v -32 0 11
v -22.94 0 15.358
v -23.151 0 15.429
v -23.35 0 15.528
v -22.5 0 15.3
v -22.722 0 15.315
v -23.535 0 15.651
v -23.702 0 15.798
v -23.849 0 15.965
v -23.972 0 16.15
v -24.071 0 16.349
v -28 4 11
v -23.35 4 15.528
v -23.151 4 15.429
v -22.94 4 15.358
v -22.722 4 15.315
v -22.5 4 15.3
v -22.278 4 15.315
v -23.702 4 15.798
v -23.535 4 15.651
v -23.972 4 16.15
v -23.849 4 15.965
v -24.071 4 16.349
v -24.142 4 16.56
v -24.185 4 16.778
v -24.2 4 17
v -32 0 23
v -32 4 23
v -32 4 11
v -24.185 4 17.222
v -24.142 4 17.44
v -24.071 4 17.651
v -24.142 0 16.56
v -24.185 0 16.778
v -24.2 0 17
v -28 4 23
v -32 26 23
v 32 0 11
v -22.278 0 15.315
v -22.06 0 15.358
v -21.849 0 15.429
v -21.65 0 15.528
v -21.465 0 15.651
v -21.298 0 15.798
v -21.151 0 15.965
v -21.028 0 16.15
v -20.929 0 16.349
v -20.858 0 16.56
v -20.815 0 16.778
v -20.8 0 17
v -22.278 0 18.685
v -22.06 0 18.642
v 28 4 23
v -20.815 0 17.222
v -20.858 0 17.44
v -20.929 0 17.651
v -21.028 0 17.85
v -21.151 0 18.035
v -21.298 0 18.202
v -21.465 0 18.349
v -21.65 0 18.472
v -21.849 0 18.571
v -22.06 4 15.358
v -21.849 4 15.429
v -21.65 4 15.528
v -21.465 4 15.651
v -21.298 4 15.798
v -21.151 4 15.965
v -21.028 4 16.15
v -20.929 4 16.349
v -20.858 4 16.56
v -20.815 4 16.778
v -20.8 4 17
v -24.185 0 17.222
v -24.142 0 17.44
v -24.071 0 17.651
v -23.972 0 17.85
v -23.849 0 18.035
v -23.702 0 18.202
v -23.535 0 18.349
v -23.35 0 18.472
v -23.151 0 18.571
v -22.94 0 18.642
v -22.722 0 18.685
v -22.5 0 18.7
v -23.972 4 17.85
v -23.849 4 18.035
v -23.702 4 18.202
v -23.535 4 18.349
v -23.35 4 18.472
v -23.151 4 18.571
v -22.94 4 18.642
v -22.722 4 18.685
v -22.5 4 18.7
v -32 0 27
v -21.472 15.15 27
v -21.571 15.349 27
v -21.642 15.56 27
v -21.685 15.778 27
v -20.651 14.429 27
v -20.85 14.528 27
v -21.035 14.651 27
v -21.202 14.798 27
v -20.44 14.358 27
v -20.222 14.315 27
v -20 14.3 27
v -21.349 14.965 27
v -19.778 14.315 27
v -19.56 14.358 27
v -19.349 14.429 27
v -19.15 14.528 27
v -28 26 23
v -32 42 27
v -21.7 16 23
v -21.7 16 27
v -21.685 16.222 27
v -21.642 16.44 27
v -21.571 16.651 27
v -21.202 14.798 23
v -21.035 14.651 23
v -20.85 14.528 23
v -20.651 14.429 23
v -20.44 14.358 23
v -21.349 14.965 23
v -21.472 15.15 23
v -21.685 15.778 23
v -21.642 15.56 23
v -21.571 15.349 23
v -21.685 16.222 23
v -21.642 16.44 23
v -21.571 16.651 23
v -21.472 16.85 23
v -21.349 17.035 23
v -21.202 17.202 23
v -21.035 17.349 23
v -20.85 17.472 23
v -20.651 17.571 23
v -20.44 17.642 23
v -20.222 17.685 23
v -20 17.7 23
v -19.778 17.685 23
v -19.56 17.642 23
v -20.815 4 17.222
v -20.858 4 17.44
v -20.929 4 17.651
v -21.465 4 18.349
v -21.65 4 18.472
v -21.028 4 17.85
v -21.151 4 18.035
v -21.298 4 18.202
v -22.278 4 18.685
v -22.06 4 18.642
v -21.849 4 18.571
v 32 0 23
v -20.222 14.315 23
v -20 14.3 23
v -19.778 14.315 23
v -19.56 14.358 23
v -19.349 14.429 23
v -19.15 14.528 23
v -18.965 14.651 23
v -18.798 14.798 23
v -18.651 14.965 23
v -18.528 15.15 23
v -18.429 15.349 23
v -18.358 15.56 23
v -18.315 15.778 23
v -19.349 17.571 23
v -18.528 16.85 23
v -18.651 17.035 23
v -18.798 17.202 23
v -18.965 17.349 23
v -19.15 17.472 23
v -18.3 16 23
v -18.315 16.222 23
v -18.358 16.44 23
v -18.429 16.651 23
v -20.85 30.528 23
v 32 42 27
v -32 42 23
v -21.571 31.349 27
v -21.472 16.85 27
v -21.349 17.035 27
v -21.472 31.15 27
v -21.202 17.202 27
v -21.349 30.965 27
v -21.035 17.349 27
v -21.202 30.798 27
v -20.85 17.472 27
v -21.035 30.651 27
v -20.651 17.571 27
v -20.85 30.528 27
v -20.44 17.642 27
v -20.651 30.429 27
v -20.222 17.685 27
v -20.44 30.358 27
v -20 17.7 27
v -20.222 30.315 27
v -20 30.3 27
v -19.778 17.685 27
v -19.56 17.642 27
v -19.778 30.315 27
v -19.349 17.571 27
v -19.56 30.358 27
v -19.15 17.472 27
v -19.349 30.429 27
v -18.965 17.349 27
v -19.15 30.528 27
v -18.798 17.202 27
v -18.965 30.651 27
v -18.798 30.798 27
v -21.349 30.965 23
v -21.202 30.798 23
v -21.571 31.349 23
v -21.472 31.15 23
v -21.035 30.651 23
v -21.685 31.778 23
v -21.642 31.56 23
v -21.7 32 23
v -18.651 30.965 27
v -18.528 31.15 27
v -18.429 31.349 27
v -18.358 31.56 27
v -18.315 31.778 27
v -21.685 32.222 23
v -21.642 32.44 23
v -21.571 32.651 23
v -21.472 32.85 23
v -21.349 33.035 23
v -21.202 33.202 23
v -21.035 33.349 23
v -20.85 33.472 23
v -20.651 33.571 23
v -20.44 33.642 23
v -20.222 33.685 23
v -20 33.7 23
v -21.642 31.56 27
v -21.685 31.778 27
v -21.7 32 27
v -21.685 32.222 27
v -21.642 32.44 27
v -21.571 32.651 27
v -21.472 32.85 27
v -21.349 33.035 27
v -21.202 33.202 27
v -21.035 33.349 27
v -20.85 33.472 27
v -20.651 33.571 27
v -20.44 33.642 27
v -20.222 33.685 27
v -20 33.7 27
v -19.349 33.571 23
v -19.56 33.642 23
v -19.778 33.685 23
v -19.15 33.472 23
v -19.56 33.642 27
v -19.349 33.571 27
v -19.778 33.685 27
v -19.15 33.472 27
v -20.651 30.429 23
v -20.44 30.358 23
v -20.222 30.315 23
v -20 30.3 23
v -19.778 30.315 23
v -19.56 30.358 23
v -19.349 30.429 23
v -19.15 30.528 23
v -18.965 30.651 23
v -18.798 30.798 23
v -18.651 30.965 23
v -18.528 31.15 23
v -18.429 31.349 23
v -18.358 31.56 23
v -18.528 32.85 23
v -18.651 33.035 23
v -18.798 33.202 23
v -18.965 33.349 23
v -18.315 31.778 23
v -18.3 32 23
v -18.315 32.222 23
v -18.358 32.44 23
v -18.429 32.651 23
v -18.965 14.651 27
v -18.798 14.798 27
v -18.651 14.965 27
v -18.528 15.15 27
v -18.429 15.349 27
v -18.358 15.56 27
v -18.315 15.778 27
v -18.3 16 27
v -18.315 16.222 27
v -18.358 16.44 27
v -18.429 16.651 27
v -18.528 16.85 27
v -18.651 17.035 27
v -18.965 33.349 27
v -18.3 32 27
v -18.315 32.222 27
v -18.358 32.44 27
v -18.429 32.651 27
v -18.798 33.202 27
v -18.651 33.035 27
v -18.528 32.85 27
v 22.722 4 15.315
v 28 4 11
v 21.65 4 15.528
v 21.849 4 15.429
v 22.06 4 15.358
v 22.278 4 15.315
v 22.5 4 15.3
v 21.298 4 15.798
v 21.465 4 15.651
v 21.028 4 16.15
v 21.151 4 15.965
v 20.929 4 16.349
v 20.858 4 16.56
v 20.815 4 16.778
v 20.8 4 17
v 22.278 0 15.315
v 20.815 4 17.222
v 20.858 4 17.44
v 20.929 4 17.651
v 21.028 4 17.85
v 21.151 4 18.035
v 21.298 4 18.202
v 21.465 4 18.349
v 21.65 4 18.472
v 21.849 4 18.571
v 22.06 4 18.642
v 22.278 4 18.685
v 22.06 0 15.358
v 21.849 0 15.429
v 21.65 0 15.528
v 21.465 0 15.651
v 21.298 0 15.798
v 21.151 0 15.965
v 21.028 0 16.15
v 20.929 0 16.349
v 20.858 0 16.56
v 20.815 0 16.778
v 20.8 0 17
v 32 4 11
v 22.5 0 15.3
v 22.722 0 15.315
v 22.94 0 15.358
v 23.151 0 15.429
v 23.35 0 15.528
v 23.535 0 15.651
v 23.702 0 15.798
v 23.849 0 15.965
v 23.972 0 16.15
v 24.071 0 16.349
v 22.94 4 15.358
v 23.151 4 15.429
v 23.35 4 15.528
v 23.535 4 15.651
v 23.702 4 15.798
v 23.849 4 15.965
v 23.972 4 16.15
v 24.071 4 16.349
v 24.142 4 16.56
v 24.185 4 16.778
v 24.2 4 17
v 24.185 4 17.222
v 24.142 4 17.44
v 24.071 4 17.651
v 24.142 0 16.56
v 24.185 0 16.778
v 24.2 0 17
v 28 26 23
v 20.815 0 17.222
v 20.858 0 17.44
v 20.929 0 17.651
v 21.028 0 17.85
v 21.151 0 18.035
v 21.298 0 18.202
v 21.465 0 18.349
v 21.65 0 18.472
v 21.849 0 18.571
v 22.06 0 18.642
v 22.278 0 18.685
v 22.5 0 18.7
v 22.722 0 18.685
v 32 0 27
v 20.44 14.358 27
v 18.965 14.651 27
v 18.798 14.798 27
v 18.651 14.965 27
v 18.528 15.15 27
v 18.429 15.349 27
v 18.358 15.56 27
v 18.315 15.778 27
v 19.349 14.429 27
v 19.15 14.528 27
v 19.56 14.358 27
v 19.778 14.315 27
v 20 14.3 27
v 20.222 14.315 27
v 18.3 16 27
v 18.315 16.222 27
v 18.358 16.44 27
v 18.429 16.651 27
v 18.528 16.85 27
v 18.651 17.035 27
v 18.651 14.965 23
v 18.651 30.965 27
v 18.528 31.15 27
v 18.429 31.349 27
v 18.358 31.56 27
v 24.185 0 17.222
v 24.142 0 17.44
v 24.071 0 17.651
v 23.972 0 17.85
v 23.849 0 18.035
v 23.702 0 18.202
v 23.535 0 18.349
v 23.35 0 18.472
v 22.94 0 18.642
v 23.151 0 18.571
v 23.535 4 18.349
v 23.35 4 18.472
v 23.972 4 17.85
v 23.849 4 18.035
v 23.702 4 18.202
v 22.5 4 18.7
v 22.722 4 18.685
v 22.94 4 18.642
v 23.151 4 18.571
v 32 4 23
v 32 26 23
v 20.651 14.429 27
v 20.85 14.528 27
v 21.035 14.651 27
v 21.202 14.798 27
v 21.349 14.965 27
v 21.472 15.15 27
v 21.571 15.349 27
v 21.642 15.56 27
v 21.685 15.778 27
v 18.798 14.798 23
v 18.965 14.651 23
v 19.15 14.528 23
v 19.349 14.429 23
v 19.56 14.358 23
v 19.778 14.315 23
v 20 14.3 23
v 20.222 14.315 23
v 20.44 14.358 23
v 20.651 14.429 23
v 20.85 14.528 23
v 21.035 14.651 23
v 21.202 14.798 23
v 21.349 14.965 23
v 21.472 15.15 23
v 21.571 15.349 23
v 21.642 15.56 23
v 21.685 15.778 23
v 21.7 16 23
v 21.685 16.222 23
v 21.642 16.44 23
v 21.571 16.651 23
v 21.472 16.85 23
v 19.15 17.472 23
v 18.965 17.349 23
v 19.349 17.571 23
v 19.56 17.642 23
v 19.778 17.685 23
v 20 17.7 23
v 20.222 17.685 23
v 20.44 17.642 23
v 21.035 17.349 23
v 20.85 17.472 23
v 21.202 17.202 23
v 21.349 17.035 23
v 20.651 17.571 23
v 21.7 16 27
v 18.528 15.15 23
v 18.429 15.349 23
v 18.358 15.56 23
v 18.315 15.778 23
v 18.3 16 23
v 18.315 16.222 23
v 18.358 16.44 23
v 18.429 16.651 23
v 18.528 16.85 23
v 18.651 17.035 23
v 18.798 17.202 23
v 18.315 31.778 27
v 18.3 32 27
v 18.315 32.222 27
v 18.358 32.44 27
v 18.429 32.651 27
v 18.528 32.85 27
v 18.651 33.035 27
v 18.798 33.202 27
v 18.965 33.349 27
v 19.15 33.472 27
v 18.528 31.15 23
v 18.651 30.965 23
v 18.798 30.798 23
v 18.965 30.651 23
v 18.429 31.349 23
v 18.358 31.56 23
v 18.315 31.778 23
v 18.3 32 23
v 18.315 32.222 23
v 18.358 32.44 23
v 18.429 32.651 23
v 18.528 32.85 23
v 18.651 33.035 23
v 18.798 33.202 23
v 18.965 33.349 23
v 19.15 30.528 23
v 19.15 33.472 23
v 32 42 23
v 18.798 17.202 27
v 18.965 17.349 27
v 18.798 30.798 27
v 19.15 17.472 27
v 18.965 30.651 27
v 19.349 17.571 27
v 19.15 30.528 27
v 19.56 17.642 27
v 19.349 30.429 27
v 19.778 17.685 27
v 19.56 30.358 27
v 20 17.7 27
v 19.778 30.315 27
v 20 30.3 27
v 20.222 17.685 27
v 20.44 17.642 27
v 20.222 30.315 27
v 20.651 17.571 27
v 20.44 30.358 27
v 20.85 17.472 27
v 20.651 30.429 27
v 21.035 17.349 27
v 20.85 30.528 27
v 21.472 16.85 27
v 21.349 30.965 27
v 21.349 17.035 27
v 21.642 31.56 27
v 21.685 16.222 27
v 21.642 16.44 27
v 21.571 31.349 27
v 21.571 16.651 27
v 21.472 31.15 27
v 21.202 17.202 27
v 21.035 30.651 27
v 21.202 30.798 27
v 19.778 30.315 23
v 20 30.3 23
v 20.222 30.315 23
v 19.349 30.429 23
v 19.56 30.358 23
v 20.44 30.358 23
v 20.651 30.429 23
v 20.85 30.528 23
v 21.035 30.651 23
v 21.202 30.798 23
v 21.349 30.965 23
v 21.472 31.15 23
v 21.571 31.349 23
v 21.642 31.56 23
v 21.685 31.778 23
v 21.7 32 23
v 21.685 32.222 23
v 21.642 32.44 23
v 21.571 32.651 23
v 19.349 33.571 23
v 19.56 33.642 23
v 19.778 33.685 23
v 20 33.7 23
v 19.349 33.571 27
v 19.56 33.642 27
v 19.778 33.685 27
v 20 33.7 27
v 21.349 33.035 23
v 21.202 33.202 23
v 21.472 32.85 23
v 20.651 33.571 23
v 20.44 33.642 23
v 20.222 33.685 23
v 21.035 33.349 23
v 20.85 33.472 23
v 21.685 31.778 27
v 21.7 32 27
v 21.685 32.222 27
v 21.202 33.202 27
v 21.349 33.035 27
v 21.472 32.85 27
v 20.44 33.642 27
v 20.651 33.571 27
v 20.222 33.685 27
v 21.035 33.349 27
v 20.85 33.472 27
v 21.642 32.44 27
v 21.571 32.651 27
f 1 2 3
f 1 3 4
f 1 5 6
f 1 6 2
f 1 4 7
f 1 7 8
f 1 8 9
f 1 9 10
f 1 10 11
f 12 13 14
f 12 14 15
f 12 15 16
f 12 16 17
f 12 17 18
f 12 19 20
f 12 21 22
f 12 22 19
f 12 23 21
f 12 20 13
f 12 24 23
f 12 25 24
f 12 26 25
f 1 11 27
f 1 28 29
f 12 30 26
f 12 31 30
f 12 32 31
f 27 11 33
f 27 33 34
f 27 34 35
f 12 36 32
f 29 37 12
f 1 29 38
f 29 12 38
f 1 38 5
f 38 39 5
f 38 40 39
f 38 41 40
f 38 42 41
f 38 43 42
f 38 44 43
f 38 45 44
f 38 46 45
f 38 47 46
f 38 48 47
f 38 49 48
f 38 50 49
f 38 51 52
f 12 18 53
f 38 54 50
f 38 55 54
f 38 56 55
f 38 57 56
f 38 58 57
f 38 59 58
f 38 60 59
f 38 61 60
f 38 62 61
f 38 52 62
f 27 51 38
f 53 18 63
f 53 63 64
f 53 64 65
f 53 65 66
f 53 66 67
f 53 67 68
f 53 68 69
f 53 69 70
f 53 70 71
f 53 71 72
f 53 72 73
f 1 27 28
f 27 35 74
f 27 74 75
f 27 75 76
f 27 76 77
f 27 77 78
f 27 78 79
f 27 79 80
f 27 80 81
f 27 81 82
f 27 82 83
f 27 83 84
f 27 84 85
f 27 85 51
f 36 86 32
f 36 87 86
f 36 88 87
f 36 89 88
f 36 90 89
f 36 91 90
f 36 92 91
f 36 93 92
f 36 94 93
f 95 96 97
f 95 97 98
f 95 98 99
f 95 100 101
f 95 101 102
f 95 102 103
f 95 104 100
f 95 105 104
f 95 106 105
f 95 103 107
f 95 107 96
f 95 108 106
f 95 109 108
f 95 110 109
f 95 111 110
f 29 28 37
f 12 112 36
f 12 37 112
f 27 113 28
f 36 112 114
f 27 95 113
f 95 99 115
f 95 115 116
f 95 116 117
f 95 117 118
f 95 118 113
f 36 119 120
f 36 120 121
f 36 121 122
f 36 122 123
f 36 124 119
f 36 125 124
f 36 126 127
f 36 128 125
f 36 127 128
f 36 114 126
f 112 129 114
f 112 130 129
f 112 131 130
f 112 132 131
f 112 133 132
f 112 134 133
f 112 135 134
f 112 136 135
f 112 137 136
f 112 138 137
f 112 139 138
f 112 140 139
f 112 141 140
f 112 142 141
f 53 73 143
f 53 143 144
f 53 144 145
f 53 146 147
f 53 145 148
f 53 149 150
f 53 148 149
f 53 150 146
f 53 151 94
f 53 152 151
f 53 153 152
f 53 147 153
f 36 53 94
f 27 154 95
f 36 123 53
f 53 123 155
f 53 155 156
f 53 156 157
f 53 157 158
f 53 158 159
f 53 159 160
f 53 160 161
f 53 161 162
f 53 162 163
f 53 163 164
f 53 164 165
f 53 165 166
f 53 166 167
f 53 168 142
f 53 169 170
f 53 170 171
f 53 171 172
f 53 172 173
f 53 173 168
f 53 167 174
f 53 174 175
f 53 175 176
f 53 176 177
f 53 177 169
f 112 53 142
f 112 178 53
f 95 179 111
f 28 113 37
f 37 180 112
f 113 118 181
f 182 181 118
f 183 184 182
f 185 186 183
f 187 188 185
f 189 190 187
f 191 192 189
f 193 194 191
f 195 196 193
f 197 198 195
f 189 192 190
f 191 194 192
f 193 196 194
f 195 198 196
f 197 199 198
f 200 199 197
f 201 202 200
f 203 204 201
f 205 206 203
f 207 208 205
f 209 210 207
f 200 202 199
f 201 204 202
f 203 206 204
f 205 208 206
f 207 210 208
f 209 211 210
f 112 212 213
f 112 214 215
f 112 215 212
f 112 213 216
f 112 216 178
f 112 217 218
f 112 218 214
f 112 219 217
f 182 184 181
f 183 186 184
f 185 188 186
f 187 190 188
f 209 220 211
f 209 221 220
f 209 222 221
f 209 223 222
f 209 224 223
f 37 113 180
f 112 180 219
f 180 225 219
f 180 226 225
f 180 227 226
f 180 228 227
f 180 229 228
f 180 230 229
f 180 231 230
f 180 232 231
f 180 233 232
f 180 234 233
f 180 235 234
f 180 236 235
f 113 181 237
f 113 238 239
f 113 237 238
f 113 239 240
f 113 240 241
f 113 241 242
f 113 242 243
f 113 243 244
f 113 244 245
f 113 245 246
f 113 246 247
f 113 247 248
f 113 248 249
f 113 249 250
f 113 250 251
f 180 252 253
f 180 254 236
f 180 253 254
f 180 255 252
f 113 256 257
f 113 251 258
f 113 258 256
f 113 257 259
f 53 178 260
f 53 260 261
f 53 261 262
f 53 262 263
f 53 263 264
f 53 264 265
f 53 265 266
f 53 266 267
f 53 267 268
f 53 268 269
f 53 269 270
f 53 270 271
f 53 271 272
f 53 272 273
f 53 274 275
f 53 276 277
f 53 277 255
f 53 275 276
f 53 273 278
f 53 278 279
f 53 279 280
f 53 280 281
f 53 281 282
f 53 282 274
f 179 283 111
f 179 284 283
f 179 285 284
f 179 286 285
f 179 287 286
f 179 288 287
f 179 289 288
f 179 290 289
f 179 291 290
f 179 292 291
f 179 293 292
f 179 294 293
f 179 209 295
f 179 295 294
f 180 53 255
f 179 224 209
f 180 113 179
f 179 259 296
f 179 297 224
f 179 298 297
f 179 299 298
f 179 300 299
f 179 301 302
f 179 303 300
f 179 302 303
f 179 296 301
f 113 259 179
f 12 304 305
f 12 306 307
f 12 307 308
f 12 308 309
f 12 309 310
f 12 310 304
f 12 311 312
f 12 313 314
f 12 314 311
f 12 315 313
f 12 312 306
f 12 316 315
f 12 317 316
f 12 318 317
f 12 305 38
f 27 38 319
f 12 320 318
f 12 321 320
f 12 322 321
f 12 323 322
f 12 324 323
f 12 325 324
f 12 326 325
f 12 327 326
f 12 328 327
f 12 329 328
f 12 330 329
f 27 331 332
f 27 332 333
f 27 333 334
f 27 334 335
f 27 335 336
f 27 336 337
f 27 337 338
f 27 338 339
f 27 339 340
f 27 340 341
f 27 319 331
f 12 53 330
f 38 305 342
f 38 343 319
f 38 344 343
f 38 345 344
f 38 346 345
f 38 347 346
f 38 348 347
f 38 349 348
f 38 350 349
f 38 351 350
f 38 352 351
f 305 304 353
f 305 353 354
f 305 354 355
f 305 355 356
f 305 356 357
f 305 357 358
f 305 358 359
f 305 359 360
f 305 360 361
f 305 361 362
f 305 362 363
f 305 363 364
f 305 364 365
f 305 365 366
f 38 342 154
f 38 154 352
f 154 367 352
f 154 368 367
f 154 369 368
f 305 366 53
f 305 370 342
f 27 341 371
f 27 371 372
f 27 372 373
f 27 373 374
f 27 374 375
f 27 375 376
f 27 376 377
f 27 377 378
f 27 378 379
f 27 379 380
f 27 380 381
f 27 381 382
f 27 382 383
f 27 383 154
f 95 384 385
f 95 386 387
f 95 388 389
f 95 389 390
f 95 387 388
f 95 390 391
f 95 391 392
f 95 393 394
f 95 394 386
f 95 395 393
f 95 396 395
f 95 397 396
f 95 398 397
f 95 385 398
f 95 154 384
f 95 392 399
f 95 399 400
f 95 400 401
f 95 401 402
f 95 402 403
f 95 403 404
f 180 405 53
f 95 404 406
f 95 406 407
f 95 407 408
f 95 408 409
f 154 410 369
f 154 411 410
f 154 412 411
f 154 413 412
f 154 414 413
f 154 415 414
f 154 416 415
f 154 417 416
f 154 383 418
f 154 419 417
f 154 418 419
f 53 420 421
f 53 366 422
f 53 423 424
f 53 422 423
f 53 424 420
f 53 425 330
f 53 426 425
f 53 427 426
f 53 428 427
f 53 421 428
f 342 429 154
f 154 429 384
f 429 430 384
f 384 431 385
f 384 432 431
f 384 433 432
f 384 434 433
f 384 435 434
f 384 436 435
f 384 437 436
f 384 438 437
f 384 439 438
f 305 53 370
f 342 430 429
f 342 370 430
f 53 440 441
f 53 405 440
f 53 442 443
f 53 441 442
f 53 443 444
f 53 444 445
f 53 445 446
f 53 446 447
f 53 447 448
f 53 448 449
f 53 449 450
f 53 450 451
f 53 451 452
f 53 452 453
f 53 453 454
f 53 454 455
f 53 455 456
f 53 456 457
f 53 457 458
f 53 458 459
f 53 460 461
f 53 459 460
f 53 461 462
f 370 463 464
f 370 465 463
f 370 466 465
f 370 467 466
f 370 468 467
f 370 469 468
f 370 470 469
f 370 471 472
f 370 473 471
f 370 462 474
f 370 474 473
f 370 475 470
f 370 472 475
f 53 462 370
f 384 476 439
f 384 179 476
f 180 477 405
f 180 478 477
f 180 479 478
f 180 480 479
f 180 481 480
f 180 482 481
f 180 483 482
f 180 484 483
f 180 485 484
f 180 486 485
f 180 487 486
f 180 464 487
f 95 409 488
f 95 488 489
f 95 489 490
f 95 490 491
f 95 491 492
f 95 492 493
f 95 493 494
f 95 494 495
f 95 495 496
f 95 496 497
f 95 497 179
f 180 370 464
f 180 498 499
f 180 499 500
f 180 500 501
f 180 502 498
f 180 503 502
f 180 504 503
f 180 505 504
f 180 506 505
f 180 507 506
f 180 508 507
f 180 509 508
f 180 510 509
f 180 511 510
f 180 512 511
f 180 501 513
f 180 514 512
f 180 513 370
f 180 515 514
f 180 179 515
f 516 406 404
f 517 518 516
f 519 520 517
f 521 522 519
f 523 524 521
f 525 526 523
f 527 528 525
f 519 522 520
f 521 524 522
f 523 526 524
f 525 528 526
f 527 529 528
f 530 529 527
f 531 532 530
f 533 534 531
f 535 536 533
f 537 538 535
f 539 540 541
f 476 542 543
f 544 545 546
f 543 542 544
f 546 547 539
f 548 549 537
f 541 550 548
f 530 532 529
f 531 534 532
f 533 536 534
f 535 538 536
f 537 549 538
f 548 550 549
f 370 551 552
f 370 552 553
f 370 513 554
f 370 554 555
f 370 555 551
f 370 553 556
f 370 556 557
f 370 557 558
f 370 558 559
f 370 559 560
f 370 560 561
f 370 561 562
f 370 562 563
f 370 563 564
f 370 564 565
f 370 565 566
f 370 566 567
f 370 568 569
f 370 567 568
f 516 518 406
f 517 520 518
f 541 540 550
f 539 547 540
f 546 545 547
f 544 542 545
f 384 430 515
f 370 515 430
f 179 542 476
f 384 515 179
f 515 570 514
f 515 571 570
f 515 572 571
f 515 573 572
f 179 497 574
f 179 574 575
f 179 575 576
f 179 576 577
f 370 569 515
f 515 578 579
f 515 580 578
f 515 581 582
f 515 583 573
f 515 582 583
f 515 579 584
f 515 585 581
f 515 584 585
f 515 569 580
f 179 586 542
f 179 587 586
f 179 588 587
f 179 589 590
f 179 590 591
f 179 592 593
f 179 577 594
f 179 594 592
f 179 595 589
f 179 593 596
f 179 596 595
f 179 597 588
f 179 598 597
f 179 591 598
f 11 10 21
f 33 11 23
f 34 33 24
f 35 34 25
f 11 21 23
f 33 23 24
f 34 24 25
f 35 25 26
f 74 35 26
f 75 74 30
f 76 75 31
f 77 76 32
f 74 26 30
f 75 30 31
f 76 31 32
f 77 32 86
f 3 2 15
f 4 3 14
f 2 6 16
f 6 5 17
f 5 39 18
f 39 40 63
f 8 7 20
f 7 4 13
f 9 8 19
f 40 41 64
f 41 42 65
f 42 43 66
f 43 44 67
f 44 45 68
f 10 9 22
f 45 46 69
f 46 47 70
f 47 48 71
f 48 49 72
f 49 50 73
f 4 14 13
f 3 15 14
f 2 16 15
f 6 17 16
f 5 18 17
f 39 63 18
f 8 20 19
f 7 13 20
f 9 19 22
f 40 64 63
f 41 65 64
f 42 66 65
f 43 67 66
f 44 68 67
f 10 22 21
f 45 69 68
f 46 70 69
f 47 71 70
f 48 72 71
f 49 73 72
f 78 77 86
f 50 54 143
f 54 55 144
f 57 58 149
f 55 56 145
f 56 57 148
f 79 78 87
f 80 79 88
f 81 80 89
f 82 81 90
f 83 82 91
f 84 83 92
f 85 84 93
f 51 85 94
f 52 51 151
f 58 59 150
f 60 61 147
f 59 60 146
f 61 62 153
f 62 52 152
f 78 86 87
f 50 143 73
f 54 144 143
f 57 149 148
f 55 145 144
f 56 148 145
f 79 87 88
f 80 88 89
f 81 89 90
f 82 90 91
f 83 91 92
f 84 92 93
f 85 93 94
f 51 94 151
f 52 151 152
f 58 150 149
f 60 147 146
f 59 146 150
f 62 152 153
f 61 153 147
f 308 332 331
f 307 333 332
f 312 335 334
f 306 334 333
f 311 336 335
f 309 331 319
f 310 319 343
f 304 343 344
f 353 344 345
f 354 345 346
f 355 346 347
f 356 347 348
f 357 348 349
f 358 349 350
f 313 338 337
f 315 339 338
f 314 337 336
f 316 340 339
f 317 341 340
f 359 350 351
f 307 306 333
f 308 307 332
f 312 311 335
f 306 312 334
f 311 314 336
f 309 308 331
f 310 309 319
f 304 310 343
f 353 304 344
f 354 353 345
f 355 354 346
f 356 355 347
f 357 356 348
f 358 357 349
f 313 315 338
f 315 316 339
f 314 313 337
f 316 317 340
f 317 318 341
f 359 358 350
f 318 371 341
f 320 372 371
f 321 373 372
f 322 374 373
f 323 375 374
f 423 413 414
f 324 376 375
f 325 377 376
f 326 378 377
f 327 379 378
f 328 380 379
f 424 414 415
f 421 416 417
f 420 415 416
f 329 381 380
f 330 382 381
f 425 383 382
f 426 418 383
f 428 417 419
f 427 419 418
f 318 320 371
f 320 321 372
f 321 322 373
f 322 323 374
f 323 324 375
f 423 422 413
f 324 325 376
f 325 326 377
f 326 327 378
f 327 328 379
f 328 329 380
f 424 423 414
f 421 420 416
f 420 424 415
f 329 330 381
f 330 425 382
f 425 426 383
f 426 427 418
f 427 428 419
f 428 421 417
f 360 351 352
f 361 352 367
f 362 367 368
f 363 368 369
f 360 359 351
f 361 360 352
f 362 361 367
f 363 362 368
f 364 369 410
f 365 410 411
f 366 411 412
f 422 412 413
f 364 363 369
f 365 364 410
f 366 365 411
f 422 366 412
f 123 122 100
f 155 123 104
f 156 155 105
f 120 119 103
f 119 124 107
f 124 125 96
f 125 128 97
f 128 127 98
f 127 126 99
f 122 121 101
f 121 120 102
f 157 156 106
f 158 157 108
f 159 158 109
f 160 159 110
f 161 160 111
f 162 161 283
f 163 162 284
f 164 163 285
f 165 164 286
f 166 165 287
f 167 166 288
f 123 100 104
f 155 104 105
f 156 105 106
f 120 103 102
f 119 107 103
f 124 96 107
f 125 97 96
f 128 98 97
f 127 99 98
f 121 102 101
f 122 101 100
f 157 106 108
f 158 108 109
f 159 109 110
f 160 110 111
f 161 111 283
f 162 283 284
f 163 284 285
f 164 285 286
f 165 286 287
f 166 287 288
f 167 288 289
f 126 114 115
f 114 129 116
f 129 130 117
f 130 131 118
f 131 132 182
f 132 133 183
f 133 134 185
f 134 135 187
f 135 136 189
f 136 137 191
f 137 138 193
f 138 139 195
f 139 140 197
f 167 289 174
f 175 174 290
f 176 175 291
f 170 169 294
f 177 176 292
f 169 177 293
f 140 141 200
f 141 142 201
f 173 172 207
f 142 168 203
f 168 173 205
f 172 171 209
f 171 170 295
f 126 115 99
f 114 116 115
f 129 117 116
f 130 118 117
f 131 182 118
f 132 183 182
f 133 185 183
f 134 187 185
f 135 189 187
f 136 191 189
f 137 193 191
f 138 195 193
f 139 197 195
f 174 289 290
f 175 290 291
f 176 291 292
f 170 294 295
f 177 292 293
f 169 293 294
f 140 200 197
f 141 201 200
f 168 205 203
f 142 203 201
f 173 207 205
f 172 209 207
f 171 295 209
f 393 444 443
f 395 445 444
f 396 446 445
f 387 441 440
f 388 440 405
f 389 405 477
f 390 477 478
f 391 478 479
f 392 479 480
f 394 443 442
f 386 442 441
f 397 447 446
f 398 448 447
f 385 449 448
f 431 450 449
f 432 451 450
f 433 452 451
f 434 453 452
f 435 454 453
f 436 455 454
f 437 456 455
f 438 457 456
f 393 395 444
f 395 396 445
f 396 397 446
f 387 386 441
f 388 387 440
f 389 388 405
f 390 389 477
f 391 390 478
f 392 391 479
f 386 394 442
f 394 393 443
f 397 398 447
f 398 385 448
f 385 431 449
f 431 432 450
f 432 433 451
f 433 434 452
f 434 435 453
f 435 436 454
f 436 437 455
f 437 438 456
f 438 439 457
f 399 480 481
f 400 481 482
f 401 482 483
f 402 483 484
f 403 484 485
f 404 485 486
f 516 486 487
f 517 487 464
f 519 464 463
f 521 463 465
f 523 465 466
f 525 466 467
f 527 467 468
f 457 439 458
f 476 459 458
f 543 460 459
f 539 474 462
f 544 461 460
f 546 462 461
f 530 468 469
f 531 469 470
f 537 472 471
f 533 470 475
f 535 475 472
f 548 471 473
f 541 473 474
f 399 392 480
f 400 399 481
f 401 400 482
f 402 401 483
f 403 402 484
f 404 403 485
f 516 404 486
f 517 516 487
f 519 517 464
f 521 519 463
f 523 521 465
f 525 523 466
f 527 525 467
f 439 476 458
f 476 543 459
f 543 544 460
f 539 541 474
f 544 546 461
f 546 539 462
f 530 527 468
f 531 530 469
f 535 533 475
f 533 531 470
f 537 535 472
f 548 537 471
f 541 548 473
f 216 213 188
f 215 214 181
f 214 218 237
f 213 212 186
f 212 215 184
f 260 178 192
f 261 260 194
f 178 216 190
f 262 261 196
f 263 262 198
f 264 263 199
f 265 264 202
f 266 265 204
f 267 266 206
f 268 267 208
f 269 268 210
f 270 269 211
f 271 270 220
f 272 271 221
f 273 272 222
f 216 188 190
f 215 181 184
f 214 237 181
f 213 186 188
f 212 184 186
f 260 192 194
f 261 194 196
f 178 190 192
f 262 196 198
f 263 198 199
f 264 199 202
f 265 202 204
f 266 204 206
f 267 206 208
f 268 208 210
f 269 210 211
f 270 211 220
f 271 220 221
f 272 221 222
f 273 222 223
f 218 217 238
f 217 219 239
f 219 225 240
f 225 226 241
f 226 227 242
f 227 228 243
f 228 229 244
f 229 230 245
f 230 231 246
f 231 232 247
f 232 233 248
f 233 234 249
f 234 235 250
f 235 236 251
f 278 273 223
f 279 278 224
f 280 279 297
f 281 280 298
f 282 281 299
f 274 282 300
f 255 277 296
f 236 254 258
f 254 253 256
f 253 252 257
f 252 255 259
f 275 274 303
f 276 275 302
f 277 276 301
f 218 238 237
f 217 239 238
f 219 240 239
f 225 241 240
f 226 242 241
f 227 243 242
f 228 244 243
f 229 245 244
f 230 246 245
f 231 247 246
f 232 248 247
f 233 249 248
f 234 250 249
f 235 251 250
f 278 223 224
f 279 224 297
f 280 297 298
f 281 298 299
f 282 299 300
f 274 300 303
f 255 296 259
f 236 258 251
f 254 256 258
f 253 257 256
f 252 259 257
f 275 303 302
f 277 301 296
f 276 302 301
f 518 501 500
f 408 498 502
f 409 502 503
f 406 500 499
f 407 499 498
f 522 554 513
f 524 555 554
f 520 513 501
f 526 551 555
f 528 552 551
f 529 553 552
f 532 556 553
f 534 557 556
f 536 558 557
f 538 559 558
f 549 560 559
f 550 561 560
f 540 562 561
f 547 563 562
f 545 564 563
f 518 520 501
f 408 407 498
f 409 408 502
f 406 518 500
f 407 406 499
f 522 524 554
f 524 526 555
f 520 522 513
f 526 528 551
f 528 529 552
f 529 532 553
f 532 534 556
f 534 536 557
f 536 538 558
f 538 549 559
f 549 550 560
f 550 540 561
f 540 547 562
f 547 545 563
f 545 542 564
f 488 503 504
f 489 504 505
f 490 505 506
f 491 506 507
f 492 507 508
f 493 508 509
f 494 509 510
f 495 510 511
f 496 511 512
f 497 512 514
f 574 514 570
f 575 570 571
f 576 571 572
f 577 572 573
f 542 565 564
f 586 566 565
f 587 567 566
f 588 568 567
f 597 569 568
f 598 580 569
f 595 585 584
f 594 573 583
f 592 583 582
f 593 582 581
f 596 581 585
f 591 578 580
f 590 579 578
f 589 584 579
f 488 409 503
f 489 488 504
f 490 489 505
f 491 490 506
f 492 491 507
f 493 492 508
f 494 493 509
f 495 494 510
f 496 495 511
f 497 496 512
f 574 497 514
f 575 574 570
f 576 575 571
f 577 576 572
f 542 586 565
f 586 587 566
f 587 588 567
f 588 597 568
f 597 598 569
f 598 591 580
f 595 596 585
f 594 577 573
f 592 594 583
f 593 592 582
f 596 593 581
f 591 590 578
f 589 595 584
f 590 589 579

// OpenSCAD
// ===========================================================================
// XLeRobot  ->  Intel RealSense D435i  mounting bracket
// Bolts to the camera's two front-face M3 holes (45 mm pitch) and presents a
// flat foot to the XLeRobot "last mounting link".
//
// Units: millimetres.  Frame: X = camera width, Y = depth (camera front face
// at Y=0, robot side at +Y), Z = up (camera bottom edge at Z=0).
//
// Render/export:  openscad -o d435i_bracket.stl d435i_bracket.scad
// (The shipped d435i_bracket.stl was generated from the defaults below.)
// ===========================================================================

/* [Camera interface] */
m3_pitch   = 45;    // FIXED: center-to-center of the two front M3 holes
m3_clear_d = 3.4;   // M3 clearance hole diameter (use 2.9 for self-tapping)
// *** VERIFY WITH CALIPERS *** height of the M3 holes above the camera's
// bottom edge. NOT published in the Intel datasheet; measure your unit.
cam_m3_z   = 17;

/* [Strap = camera-contact plate] */
strap_w = 64;   // width
strap_t = 4;    // thickness (front-to-back)
strap_h = 12;   // height (kept short so it clears the optics band)

/* [Foot = plate over the camera top, to the robot] */
foot_depth = 42;
foot_w     = 64;
foot_t     = 4;
gusset_depth = 22;

/* [Robot-side holes - ADAPT to the XLeRobot mounting link] */
robot_hole_d = 3.4;
robot_hole_x = 20;        // +/- X
robot_hole_y = [16, 32];  // Y positions (distance back from camera face)

$fn = 48;

hx  = m3_pitch / 2;
sz0 = cam_m3_z - strap_h/2;
sz1 = cam_m3_z + strap_h/2;
fz0 = sz1;
fz1 = sz1 + foot_t;

module gusset(xc) {
    // right triangle in the Y-Z plane, extruded 4 mm along X
    translate([xc, 0, 0])
      rotate([90, 0, 90])
        linear_extrude(height = 4)
          polygon([[strap_t, fz0],
                   [strap_t + gusset_depth, fz0],
                   [strap_t, sz0]]);
}

difference() {
    union() {
        // strap (vertical, against the camera front face)
        translate([-strap_w/2, 0, sz0]) cube([strap_w, strap_t, strap_h]);
        // foot (horizontal, over the camera top)
        translate([-foot_w/2, 0, fz0]) cube([foot_w, foot_depth, foot_t]);
        // side gussets
        gusset( strap_w/2 - 4);
        gusset(-strap_w/2);
    }
    // camera M3 holes (axis along Y)
    for (sx = [-hx, hx])
        translate([sx, -2, cam_m3_z])
          rotate([-90, 0, 0]) cylinder(d = m3_clear_d, h = strap_t + 4);
    // robot-side holes (axis along Z)
    for (ry = robot_hole_y, rx = [-robot_hole_x, robot_hole_x])
        translate([rx, ry, fz0 - 2])
          cylinder(d = robot_hole_d, h = foot_t + 4);
}
